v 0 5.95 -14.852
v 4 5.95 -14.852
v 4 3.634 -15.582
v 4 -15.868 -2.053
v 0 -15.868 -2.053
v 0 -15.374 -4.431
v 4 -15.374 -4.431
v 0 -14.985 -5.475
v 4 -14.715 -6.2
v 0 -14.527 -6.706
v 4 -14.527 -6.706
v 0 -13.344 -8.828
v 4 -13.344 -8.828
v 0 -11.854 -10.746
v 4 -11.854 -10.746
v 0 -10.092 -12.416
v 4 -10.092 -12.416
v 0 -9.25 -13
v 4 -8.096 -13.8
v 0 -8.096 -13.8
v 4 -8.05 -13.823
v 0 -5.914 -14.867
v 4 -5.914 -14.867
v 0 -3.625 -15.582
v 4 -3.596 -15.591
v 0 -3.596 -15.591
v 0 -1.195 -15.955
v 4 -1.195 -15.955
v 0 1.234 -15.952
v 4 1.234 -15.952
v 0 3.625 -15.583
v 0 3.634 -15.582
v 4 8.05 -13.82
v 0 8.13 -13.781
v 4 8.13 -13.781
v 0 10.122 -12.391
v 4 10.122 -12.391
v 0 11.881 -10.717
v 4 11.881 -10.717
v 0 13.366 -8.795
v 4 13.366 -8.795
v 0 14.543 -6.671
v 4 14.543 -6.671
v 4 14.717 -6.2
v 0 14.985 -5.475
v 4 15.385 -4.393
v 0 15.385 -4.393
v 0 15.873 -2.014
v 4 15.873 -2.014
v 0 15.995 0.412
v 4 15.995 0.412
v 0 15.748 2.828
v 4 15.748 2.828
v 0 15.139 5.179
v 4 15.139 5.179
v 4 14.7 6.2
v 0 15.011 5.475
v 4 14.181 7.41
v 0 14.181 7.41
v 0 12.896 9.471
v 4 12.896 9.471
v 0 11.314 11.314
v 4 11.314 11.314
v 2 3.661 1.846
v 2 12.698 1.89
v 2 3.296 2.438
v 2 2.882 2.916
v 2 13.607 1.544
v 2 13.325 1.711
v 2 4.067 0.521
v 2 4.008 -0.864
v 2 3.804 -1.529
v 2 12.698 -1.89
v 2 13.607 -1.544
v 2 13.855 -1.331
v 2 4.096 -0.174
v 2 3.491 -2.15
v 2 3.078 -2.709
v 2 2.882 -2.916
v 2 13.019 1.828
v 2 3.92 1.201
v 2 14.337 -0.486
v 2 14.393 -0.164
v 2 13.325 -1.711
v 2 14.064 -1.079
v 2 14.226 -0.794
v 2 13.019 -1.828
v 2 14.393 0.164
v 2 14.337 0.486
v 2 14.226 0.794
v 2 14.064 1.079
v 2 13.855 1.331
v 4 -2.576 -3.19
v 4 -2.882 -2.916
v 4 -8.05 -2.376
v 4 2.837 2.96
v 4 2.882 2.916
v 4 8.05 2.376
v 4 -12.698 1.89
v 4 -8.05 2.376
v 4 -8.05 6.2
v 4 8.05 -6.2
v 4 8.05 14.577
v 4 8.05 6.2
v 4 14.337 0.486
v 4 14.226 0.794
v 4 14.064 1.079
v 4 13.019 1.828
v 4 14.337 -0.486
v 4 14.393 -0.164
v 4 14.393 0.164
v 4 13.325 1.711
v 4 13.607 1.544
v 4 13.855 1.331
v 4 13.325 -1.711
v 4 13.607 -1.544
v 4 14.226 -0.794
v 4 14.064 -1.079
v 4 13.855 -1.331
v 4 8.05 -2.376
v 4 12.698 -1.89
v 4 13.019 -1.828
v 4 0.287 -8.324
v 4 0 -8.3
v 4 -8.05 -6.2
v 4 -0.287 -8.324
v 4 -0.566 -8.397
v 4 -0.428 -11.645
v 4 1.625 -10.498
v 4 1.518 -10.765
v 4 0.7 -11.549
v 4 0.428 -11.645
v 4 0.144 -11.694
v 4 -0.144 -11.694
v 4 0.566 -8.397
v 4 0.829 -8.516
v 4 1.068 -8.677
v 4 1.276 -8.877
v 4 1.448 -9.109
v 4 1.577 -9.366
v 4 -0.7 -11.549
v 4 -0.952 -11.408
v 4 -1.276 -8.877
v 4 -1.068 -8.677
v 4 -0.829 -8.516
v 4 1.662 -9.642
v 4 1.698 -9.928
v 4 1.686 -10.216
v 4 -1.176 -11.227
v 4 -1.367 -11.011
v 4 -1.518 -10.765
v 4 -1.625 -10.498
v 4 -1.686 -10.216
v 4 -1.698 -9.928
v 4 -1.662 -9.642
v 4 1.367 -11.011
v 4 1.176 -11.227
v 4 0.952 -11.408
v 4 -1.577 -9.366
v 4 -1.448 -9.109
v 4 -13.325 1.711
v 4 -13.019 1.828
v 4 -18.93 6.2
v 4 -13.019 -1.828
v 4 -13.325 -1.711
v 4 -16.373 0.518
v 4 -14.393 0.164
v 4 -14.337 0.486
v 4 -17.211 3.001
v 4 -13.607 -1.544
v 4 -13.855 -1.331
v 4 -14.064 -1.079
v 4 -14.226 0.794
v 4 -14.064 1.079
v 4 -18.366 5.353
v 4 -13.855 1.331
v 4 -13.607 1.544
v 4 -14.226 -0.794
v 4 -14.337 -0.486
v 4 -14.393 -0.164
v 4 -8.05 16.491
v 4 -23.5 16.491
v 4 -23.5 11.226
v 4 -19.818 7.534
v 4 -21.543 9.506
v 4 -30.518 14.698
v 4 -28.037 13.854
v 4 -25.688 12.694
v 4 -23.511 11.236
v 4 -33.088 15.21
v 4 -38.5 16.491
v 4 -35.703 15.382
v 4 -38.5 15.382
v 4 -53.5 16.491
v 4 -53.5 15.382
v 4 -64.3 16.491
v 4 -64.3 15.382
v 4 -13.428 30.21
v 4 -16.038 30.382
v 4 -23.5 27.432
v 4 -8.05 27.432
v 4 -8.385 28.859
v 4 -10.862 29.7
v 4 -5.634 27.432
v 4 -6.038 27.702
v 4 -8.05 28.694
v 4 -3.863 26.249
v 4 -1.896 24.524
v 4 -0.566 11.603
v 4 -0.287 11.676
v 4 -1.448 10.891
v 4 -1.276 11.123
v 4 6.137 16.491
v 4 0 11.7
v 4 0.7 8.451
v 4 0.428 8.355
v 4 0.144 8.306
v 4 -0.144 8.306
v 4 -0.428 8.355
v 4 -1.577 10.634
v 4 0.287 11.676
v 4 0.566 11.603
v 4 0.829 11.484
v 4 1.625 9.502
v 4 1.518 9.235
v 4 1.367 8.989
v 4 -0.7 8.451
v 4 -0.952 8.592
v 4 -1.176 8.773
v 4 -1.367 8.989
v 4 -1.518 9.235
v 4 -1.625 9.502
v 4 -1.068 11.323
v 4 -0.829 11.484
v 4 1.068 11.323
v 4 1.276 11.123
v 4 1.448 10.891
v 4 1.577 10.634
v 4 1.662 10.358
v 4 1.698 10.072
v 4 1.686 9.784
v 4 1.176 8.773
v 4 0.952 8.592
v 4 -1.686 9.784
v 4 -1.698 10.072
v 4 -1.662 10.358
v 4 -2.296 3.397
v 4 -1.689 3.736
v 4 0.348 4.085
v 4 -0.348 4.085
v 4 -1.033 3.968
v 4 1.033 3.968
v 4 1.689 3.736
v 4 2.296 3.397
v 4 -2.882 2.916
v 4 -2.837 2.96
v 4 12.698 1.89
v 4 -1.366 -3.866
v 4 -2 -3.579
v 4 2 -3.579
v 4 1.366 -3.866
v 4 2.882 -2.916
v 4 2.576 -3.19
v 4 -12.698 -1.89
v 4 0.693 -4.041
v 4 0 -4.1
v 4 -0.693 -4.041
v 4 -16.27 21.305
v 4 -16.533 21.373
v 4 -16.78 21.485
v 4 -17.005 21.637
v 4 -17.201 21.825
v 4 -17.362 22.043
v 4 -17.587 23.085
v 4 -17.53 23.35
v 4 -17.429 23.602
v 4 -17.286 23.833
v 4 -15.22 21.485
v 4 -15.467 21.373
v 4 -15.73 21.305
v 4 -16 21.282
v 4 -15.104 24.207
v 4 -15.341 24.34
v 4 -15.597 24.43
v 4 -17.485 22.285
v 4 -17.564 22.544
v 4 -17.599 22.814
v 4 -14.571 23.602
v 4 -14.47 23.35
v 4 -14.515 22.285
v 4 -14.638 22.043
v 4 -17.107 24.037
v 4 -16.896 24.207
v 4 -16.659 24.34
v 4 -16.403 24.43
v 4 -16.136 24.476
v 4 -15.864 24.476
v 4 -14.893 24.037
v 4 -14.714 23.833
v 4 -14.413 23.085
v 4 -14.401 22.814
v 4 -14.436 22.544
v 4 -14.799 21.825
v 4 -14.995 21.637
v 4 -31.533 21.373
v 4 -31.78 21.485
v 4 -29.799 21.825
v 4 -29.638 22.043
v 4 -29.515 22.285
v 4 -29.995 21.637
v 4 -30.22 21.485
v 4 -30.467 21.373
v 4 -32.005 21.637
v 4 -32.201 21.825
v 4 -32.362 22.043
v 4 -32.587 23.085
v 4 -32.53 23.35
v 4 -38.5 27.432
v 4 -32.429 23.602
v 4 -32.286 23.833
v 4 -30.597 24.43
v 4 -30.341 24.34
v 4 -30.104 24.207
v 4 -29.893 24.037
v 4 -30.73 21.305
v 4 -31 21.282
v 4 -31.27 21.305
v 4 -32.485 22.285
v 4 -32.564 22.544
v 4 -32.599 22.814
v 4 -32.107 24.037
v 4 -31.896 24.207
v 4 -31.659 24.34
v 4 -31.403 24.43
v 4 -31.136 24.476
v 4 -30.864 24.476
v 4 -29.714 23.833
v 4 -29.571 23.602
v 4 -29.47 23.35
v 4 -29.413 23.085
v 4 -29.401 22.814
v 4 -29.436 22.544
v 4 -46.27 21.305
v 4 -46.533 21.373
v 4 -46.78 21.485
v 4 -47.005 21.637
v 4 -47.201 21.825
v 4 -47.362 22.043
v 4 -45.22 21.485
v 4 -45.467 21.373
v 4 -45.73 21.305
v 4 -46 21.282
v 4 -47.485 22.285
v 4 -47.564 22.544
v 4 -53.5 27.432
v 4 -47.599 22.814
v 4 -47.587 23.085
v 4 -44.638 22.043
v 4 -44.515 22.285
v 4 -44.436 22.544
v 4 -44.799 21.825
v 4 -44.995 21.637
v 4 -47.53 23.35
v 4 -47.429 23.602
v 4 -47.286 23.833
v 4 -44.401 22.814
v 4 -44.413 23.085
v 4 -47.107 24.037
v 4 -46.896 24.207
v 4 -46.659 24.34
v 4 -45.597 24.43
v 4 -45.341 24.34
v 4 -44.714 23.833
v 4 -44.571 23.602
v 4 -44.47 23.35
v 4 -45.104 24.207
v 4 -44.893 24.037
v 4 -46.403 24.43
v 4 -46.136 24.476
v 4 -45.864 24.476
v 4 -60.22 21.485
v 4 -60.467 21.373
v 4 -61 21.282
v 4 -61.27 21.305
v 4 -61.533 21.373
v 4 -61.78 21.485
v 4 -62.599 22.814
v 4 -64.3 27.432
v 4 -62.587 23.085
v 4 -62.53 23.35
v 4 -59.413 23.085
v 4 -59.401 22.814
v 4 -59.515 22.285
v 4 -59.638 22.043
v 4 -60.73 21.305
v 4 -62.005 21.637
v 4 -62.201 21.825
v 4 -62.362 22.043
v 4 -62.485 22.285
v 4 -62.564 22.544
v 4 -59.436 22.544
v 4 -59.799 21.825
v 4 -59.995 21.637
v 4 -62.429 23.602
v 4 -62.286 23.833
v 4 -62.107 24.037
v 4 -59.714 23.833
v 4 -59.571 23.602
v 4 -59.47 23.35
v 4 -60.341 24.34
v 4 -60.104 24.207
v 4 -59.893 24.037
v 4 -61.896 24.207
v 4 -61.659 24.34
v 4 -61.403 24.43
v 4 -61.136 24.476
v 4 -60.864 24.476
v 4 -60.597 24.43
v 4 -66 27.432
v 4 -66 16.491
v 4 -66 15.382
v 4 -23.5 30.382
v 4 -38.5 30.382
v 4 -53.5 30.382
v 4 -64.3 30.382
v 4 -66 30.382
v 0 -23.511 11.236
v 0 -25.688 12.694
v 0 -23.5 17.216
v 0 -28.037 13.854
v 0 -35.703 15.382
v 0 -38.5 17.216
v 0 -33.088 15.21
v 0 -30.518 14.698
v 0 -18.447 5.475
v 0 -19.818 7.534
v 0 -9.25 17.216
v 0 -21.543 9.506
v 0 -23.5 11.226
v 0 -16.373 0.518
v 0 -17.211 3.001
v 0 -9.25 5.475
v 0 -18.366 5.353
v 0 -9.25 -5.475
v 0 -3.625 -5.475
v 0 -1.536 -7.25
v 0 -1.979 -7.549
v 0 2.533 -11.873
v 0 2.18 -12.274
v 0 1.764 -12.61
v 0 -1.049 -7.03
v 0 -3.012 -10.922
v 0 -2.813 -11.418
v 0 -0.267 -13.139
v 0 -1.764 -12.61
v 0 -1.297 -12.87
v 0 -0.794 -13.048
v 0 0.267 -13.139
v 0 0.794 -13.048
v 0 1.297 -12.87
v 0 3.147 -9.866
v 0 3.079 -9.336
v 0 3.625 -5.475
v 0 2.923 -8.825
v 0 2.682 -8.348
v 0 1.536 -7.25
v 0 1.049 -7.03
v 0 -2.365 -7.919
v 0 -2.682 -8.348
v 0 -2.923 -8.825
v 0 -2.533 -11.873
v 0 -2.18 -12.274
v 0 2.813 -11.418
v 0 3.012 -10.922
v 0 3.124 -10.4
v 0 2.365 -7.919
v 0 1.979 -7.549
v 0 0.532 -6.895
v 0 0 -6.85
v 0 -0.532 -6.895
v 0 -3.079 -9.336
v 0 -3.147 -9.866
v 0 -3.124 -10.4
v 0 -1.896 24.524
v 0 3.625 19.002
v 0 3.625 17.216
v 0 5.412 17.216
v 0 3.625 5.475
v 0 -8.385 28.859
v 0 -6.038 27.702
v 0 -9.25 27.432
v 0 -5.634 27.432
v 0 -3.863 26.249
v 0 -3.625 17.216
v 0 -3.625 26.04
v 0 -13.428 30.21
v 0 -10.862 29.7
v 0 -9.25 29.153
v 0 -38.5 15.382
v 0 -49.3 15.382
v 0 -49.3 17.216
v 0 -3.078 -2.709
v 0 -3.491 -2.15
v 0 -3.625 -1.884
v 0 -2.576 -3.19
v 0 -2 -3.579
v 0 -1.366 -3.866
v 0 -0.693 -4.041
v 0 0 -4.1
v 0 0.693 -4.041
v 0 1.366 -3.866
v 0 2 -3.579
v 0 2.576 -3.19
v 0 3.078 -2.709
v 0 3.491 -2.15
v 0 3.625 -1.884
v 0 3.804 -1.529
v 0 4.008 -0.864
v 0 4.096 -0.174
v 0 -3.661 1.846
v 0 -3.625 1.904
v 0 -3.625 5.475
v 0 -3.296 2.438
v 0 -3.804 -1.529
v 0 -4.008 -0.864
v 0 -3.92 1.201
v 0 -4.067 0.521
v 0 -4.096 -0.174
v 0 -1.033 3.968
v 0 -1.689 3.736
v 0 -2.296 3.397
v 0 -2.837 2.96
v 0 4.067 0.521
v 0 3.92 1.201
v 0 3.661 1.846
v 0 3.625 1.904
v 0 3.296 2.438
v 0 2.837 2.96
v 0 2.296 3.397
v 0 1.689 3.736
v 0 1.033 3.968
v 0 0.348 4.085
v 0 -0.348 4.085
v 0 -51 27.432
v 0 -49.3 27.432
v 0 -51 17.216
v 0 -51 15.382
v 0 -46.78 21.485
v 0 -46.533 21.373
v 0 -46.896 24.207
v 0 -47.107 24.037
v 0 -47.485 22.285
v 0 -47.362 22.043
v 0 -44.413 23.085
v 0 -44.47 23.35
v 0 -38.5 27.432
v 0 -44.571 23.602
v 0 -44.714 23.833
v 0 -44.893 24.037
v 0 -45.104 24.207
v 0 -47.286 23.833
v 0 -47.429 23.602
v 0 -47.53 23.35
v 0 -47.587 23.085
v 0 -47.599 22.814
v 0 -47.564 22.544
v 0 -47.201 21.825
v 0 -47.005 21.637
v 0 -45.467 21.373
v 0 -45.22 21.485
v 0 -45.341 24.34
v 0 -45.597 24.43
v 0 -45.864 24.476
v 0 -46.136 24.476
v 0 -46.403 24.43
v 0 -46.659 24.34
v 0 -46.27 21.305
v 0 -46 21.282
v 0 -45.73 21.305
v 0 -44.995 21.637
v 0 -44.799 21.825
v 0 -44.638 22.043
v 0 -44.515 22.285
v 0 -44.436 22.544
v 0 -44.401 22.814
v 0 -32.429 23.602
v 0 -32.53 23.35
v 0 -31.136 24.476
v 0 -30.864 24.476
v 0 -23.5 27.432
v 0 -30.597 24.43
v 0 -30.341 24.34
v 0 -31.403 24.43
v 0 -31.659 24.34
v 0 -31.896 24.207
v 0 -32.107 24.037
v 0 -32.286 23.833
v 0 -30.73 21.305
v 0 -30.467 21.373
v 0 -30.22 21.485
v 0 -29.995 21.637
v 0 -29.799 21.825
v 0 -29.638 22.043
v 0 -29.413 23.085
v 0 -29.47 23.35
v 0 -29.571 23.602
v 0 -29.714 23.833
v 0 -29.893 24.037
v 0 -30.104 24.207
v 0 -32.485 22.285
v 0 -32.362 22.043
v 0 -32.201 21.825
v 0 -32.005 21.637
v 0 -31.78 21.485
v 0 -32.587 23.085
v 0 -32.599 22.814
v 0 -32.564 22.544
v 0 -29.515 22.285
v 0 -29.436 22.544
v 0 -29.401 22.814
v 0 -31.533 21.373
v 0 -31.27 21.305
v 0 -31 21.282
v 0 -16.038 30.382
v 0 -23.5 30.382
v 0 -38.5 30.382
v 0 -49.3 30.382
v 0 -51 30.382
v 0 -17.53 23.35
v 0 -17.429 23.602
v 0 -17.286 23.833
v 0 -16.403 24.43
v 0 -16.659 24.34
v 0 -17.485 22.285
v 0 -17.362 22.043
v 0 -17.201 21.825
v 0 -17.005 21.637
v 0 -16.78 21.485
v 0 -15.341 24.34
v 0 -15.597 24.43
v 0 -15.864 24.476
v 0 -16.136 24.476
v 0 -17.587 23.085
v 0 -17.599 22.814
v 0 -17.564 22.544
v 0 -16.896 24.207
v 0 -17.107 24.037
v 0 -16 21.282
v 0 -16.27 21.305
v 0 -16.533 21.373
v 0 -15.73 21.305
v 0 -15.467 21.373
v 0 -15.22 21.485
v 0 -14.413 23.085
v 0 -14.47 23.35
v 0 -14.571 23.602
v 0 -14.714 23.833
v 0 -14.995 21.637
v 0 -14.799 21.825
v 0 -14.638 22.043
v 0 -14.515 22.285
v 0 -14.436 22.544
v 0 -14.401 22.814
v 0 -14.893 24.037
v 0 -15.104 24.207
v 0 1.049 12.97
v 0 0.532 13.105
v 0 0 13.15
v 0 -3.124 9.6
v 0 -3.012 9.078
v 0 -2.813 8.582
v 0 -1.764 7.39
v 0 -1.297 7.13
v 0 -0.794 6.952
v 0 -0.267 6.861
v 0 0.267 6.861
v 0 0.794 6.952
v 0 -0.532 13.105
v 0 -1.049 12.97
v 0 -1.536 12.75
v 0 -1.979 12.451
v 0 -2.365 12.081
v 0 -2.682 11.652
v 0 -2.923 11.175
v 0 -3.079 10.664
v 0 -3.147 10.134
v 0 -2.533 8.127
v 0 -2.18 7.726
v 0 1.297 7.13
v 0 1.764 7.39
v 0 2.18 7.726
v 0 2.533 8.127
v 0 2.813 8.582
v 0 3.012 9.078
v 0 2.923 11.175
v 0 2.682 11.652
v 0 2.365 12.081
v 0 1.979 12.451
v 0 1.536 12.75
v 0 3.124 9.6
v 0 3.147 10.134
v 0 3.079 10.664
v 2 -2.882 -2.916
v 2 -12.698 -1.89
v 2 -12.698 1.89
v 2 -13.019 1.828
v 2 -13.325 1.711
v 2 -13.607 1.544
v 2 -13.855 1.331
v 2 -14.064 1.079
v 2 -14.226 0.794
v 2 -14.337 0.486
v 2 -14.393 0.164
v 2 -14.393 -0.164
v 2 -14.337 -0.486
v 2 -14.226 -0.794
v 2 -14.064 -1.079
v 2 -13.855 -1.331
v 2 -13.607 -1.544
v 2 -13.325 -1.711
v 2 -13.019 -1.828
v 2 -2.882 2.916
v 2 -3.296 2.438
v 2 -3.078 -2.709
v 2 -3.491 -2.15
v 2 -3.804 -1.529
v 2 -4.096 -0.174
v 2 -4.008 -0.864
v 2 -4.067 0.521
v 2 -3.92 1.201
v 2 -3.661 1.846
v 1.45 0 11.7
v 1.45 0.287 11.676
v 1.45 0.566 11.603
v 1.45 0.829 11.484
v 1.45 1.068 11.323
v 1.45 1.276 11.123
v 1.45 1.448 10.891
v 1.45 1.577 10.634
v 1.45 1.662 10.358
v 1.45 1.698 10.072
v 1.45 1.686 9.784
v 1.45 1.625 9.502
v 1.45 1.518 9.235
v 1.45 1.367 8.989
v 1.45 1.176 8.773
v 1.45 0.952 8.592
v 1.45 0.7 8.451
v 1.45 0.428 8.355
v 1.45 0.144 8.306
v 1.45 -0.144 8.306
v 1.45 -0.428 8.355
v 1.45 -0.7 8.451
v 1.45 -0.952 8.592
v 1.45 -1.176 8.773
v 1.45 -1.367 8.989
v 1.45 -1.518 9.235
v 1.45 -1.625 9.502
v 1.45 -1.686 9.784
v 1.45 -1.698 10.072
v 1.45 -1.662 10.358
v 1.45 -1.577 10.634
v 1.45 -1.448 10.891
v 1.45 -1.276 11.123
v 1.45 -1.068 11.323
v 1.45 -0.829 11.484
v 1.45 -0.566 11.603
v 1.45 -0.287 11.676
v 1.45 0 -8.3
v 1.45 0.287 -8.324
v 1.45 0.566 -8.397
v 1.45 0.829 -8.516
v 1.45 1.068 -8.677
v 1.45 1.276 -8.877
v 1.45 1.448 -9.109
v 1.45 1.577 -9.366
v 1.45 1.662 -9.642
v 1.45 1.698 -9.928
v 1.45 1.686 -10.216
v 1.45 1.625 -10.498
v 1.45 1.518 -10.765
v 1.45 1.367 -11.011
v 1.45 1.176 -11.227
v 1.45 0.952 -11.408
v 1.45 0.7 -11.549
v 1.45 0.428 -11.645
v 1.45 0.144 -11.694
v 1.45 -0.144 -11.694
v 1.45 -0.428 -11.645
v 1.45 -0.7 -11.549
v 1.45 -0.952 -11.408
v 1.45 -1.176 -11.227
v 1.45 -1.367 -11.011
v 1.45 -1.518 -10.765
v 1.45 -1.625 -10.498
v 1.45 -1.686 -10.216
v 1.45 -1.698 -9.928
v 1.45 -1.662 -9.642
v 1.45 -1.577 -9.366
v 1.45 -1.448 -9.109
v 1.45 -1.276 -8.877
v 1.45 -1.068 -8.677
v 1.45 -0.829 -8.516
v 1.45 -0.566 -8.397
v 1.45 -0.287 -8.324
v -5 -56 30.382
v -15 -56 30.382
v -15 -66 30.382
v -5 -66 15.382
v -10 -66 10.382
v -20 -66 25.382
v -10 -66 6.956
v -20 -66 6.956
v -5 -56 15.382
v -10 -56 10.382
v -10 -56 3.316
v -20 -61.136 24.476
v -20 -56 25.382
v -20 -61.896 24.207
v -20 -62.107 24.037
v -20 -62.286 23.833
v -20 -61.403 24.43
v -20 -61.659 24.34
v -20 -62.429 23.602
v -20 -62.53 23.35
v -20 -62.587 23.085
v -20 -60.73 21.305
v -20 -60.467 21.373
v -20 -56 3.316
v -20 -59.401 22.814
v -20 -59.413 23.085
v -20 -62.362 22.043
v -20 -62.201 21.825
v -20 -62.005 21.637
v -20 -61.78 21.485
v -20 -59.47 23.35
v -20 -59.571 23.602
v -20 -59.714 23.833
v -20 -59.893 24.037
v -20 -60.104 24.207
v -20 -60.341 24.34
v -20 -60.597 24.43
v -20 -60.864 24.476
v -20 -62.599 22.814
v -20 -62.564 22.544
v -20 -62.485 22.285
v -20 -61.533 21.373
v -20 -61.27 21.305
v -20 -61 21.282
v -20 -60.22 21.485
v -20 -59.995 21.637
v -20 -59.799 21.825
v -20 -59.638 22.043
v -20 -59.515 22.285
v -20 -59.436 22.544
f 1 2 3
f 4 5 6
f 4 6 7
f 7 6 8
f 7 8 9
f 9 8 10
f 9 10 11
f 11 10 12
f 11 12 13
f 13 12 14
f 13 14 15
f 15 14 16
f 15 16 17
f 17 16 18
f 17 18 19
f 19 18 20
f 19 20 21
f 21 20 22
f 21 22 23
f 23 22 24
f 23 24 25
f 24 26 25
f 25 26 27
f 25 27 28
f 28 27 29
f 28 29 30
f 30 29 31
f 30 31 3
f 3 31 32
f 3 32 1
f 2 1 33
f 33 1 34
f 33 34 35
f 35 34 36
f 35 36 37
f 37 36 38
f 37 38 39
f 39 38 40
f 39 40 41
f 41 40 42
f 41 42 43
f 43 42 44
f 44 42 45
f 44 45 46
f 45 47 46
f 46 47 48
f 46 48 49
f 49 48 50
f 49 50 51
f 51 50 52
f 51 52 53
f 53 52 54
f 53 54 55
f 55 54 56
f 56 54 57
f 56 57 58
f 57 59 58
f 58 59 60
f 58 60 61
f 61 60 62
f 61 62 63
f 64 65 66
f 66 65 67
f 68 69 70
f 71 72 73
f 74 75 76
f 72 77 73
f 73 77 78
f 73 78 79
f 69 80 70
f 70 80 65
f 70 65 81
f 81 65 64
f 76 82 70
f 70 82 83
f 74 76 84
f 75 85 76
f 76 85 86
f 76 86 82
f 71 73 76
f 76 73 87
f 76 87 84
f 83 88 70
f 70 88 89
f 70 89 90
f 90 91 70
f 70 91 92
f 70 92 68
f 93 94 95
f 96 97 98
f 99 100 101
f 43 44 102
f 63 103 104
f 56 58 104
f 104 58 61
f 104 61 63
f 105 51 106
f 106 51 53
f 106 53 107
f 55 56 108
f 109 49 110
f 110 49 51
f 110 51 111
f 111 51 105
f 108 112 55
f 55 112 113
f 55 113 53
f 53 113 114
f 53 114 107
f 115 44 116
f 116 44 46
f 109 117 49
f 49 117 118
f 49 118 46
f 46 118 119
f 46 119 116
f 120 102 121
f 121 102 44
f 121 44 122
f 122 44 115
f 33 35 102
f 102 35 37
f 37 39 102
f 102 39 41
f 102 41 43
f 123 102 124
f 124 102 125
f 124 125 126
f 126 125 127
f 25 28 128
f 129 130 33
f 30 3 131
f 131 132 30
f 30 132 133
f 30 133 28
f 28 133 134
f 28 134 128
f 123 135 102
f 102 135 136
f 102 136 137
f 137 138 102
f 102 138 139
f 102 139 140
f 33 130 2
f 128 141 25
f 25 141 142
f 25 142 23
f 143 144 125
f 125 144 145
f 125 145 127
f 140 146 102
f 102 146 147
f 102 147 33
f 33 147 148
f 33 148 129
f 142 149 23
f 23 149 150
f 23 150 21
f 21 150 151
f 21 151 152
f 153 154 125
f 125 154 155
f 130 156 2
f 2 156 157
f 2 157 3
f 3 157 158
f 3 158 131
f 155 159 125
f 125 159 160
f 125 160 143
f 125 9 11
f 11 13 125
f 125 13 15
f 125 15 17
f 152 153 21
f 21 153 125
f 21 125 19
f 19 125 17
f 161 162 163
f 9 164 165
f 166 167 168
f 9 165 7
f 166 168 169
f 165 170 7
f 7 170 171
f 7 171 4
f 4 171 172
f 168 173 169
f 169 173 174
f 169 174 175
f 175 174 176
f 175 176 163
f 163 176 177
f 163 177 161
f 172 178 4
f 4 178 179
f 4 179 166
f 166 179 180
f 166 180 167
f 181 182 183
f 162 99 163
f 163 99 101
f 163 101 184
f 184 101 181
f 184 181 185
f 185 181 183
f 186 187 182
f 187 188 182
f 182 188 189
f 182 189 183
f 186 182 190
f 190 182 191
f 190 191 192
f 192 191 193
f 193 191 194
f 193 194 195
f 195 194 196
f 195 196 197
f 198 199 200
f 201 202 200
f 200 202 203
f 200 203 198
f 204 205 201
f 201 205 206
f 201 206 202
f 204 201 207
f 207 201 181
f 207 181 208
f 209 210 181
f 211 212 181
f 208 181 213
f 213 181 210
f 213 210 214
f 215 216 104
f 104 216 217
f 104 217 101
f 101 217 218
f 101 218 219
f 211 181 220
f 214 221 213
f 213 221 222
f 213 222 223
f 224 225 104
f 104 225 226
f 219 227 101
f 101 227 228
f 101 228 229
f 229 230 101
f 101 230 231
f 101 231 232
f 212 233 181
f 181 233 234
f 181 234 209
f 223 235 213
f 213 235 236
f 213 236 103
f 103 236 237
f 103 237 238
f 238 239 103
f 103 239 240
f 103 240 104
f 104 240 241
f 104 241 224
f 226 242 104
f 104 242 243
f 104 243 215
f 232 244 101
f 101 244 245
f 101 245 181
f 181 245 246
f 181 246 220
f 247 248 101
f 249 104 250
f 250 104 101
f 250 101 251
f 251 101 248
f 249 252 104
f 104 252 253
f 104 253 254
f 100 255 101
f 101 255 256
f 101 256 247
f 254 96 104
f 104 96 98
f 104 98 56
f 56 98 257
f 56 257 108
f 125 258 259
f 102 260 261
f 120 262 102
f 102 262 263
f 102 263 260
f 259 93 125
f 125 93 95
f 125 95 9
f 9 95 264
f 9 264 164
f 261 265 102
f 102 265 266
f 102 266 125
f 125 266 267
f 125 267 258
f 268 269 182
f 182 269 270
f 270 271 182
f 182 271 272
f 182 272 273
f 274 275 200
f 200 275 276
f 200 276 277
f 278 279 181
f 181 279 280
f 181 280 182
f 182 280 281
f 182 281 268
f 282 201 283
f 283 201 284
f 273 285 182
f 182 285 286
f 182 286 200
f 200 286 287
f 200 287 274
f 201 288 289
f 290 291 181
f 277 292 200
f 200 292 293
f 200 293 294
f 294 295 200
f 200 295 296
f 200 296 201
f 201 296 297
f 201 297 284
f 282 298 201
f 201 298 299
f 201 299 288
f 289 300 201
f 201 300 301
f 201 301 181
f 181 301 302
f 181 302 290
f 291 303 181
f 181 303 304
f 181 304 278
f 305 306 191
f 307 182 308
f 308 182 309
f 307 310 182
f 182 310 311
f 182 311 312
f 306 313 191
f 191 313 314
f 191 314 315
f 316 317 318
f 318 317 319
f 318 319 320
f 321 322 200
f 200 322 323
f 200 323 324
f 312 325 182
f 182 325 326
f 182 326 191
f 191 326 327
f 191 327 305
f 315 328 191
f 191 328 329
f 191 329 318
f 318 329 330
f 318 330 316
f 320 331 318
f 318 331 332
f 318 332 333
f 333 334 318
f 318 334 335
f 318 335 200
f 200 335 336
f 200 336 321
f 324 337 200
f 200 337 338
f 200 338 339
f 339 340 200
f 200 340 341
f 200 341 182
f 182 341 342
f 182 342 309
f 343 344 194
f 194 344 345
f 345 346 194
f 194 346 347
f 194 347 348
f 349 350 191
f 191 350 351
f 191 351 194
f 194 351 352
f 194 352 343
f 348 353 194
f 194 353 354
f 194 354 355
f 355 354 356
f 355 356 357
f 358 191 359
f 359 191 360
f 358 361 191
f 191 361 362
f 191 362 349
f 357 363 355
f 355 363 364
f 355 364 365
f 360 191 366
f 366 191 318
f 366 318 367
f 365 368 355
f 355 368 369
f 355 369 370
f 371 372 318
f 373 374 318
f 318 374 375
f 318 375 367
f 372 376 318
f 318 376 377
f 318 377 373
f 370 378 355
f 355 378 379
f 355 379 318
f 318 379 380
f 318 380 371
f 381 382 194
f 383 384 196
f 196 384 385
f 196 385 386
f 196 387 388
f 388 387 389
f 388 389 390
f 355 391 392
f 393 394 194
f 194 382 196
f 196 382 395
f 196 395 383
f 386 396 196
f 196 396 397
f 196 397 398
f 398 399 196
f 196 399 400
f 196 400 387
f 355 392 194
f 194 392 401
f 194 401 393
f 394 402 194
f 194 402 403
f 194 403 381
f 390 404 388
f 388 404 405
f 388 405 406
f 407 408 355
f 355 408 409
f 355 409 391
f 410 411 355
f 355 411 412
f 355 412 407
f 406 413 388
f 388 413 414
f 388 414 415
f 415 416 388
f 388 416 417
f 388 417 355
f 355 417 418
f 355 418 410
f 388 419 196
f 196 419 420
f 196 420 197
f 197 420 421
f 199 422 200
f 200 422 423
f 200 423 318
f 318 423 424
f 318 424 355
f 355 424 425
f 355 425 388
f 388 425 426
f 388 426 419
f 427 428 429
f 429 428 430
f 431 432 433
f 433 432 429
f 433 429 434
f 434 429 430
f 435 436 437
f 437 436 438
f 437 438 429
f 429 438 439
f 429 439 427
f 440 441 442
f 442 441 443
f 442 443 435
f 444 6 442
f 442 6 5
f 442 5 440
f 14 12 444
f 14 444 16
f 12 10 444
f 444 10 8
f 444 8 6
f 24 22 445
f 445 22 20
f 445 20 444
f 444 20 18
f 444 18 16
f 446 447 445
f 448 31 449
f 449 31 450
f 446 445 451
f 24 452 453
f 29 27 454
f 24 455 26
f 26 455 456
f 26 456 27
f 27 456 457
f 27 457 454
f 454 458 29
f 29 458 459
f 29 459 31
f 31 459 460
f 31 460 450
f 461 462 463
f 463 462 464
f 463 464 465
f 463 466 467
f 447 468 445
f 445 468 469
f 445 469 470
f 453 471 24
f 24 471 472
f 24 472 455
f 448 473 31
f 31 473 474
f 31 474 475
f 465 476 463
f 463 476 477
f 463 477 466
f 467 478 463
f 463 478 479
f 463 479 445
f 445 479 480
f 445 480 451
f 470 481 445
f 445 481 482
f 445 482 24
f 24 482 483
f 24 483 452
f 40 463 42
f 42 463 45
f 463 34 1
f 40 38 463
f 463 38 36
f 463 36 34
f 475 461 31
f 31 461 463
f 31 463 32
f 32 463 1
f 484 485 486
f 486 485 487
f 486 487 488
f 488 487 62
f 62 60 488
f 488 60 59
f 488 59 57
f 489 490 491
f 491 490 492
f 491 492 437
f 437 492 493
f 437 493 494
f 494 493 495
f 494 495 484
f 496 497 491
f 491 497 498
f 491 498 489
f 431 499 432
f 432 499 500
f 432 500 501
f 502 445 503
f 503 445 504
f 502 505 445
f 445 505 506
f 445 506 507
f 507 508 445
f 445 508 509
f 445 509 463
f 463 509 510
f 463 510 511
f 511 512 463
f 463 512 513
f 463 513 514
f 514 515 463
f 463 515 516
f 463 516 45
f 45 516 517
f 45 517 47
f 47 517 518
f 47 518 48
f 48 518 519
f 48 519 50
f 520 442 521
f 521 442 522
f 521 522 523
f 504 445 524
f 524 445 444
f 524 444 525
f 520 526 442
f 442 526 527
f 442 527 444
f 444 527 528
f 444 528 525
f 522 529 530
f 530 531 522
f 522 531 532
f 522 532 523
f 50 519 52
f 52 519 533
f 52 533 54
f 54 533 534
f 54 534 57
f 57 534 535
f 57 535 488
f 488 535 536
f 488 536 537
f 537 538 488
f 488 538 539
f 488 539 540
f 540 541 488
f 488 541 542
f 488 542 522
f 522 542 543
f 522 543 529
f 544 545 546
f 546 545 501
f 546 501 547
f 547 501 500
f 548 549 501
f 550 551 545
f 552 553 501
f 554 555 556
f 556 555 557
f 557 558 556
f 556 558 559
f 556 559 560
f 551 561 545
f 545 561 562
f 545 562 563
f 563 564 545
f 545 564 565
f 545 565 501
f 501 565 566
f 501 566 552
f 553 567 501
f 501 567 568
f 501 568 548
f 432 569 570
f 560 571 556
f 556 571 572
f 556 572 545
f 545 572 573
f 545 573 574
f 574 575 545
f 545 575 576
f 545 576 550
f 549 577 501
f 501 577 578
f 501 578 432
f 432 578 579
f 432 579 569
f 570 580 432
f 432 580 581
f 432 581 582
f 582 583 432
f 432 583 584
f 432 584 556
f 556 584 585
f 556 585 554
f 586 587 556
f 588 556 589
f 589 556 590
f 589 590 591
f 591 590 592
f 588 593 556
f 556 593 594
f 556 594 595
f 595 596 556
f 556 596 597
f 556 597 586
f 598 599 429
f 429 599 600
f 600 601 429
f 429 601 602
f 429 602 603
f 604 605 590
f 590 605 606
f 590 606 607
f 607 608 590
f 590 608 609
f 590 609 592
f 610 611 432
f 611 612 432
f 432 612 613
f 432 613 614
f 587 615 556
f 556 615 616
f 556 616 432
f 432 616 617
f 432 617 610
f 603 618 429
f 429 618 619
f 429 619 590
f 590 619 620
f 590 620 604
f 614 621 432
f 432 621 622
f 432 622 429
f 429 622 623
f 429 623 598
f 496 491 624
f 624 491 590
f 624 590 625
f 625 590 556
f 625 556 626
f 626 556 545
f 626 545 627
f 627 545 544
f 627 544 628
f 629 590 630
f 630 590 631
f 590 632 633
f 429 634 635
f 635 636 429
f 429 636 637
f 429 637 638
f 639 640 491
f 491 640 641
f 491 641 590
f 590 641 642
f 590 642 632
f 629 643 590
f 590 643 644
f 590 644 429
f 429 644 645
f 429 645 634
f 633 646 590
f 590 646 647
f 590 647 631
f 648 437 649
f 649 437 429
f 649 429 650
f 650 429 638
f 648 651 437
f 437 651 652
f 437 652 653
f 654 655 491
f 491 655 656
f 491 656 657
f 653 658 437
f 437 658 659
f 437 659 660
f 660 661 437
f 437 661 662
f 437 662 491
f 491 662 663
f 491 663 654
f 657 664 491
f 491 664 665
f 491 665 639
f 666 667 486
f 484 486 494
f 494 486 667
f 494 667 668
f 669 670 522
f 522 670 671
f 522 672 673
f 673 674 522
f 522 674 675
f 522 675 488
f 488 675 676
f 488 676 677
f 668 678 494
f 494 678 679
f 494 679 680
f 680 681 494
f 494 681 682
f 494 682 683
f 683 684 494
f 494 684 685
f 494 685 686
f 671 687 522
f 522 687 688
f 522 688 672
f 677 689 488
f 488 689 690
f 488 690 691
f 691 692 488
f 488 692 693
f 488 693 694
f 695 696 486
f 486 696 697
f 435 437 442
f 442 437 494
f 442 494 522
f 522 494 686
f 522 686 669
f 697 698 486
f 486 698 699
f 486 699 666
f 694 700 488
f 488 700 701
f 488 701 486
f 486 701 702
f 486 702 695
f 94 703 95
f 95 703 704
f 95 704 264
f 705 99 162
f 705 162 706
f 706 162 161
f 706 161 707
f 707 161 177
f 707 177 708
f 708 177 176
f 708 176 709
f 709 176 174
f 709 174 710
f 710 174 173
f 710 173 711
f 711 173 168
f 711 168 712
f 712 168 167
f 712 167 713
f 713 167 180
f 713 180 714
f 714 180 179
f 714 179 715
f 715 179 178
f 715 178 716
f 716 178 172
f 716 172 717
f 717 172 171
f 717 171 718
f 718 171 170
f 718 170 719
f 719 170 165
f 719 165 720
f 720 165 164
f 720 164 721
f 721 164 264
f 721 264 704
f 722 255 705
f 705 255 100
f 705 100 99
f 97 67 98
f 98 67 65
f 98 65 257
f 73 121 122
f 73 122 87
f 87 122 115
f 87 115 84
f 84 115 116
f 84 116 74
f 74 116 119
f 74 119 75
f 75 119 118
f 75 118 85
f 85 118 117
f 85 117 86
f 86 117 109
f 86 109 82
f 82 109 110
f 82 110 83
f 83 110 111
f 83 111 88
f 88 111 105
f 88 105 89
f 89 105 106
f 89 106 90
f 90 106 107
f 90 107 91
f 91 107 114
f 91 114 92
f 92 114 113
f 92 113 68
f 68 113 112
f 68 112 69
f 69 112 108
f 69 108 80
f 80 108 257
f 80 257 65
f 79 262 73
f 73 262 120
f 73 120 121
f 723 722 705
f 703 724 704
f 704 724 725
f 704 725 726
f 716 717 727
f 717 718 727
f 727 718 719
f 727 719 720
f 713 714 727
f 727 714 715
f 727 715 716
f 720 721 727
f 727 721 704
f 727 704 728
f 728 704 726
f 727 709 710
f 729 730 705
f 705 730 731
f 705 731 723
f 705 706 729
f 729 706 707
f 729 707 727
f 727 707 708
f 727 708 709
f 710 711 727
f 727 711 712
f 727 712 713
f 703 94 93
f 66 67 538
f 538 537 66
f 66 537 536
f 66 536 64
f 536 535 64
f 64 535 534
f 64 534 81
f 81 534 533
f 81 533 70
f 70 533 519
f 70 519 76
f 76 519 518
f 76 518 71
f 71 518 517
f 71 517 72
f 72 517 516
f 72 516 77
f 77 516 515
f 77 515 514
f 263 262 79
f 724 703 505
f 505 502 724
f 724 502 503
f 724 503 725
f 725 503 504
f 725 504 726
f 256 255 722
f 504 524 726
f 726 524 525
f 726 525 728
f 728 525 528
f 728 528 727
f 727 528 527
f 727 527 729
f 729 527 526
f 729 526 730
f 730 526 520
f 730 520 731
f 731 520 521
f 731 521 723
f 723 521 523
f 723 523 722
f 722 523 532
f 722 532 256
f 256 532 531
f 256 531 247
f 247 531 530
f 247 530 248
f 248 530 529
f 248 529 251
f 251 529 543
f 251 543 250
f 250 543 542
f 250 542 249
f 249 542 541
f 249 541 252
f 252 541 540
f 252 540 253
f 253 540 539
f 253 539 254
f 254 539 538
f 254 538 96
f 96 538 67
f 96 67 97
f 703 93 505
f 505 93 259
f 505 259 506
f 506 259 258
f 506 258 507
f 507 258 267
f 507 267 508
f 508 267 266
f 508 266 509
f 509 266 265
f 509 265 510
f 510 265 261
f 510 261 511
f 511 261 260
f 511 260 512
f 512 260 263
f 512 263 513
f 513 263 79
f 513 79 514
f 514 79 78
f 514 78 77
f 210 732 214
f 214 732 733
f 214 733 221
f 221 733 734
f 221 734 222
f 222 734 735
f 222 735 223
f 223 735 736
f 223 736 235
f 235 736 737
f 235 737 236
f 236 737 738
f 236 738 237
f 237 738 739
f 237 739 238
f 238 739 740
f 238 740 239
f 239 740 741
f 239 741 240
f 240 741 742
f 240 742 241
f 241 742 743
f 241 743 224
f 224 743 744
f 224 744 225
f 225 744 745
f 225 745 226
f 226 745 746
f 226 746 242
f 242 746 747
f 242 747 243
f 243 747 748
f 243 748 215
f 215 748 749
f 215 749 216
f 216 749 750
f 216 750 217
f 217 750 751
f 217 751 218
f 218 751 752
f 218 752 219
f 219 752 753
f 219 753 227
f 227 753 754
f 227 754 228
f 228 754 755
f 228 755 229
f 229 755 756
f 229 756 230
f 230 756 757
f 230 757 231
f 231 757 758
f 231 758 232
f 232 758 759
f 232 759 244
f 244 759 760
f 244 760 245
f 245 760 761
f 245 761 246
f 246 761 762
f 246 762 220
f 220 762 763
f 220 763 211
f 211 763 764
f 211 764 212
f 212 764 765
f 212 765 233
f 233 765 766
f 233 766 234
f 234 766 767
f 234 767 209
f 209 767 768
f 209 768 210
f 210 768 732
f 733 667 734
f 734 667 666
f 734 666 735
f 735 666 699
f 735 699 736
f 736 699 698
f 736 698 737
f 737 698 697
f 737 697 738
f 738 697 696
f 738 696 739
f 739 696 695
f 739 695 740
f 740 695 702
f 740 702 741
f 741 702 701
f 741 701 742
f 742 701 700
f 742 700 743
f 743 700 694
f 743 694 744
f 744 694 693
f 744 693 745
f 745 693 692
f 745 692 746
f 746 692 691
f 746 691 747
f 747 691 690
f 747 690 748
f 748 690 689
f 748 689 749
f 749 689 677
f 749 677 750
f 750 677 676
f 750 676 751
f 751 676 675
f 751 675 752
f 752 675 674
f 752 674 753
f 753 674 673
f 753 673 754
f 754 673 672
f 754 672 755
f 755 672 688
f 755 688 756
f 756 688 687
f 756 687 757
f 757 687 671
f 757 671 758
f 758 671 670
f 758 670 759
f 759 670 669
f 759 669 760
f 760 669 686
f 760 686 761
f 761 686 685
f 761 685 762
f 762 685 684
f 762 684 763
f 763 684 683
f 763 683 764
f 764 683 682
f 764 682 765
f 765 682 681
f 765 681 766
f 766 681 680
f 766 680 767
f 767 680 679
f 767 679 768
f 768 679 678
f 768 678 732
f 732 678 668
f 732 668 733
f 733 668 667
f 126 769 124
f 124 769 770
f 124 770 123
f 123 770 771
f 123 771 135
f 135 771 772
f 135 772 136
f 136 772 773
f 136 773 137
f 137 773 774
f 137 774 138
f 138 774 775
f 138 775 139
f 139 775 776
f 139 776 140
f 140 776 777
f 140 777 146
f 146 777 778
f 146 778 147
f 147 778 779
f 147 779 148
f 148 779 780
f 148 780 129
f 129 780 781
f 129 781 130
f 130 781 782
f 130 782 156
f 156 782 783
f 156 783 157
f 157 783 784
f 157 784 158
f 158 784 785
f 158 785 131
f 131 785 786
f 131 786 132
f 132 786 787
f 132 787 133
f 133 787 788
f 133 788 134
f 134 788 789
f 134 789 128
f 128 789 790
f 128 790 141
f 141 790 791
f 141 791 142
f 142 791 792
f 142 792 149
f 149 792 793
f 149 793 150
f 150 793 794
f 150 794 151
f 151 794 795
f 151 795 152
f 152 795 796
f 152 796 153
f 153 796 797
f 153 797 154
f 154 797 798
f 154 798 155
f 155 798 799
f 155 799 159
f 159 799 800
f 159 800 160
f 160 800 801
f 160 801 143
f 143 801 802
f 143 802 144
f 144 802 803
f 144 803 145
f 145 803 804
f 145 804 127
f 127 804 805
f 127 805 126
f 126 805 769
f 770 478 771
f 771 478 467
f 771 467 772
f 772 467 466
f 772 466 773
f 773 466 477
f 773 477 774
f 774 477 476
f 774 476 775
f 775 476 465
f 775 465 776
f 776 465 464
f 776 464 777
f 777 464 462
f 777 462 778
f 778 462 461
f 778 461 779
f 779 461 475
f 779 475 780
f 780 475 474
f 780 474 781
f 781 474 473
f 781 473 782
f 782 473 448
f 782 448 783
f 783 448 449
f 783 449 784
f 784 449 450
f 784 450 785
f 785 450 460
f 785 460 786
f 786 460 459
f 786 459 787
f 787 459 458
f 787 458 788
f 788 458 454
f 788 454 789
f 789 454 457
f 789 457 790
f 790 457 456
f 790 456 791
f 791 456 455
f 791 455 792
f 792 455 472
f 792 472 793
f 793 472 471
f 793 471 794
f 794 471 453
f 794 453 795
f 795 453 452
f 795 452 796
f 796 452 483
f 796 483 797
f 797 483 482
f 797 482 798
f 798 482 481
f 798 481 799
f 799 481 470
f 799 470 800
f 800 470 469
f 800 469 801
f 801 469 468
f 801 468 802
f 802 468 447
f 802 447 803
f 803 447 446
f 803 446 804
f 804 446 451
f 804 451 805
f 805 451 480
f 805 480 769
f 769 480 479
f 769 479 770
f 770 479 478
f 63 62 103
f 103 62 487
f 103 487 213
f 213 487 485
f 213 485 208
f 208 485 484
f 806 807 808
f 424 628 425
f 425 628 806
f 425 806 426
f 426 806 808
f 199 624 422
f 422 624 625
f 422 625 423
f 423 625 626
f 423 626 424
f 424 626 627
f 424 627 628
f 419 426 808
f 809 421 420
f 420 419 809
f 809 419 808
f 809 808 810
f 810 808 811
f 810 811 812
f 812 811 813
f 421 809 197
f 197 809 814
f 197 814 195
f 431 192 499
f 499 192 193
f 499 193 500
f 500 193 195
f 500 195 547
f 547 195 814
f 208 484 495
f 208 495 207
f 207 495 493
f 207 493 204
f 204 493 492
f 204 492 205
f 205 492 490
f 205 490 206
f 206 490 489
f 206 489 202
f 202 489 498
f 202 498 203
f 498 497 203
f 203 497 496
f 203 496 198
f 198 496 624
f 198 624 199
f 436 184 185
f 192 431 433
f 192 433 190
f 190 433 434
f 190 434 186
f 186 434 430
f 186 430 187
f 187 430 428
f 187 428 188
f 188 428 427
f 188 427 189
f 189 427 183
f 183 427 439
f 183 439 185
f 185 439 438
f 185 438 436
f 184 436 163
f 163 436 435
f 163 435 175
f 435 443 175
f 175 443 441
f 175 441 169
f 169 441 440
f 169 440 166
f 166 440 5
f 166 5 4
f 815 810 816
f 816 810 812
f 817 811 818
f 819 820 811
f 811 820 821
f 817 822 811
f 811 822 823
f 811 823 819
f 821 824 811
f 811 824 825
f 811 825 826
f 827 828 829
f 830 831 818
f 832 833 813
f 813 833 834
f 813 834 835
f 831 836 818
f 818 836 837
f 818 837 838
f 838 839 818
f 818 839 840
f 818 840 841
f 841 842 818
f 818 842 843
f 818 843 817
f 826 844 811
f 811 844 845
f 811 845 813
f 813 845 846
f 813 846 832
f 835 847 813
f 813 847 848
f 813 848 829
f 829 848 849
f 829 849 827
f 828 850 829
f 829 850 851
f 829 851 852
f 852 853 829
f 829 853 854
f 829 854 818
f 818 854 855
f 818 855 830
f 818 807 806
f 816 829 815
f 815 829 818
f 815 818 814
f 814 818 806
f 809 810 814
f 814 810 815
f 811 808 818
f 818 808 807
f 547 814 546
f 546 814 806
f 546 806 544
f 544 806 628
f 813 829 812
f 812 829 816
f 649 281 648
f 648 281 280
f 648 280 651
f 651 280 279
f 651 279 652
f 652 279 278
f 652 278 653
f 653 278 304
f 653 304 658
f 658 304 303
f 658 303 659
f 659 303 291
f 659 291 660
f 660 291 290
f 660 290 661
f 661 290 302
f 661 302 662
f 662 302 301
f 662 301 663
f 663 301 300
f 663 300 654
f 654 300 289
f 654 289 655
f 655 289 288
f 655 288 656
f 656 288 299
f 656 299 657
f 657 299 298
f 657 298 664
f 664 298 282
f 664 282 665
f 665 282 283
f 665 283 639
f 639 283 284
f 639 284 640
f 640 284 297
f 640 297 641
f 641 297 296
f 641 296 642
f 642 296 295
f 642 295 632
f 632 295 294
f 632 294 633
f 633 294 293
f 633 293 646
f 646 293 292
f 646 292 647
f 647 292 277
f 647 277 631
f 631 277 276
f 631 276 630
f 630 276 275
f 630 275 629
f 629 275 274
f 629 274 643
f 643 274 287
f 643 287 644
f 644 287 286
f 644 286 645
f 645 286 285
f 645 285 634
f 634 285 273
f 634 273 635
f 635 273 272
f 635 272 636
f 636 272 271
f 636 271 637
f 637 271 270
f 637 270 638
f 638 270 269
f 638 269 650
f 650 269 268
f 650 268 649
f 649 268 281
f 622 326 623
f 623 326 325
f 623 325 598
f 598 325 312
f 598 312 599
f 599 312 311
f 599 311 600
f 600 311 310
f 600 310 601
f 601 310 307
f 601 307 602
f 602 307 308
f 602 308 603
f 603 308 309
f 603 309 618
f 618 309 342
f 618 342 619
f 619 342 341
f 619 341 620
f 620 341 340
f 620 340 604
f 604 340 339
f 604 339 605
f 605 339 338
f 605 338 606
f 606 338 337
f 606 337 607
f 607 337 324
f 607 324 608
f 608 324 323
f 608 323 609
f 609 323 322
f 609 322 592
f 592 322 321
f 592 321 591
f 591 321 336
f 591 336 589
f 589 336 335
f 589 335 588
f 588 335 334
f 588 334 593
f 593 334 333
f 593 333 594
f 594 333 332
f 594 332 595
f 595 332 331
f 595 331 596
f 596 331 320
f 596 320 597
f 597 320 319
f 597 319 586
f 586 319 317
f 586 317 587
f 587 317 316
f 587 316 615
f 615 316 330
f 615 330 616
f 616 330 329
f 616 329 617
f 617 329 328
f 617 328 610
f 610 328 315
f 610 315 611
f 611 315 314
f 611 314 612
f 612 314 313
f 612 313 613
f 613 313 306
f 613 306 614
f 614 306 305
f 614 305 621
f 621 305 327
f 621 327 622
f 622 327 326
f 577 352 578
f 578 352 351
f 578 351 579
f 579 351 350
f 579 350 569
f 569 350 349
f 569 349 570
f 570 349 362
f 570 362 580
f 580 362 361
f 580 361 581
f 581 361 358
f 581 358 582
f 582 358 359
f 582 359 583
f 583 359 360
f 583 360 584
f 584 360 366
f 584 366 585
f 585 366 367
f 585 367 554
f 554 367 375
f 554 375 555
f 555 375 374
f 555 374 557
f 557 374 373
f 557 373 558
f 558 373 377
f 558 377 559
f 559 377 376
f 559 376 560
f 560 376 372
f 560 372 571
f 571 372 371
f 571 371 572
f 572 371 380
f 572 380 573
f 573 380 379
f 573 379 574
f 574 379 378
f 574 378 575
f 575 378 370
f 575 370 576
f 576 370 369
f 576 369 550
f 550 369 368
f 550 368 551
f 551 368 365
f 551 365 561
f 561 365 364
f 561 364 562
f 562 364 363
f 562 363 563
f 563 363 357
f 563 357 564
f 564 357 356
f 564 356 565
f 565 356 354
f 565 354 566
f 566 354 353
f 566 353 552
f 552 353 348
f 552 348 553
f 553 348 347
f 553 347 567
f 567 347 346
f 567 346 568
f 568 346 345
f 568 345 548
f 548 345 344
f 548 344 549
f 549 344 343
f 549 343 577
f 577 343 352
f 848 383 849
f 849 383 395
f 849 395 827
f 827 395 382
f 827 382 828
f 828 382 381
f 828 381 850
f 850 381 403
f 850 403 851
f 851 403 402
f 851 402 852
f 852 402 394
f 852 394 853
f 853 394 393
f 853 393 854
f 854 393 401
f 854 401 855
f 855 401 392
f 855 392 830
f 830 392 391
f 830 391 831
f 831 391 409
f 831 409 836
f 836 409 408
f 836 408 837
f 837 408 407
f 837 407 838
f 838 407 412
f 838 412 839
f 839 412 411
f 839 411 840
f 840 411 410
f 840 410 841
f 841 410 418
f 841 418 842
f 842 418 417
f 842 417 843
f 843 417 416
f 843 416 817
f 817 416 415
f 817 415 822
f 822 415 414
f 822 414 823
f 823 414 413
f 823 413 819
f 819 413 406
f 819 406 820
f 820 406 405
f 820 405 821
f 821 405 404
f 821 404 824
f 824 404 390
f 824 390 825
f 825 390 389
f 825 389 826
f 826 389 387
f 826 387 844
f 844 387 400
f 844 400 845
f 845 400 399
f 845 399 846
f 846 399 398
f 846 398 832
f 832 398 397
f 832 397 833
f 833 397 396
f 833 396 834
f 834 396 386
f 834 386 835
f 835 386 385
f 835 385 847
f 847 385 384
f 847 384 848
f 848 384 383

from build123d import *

# Parameters (mm, degrees)
SKETCH1_R                                           = 16
BOSS_EXTRUDE1_DEPTH                                 = 4
CUT_EXTRUDE2_DEPTH                                  = 2
SKETCH3_R                                           = 4.1
CUT_EXTRUDE1_DEPTH                                  = 23.978250586
CSK_FOR_M3_COUNTERSUNK_FLAT_HEAD_SCREW1_D           = 3.4
CSK_FOR_M3_COUNTERSUNK_FLAT_HEAD_SCREW1_CSINK_D     = 6.3
CSK_FOR_M3_COUNTERSUNK_FLAT_HEAD_SCREW1_CSINK_ANGLE = 90
BOSS_EXTRUDE3_DEPTH                                 = 4
FILLET3_R                                           = 20
BOSS_EXTRUDE4_DEPTH                                 = 10
CHAMFER1_SIZE                                       = 5
CUT_EXTRUDE5_DEPTH                                  = 74.993512369
SKETCH10_R                                          = 1.6
CUT_EXTRUDE4_DEPTH                                  = 77.518232271


with BuildPart() as part:
    # Sketch1 → Boss-Extrude1 (new body)
    with BuildSketch(Plane(origin=(0, 0, 0), x_dir=(0, 0, -1), z_dir=(1, 0, 0))):
        Circle(SKETCH1_R)
    extrude(amount=BOSS_EXTRUDE1_DEPTH)

    # Sketch5 → Cut-Extrude2 (cut)
    with BuildSketch(Plane(origin=(4, 0, 0), x_dir=(0, 0, -1), z_dir=(1, 0, 0))):
        with BuildLine():
            Line((-1.889696865, 12.6976), (-2.933047351, 2.719785513))
            ThreePointArc((-2.933047351, 2.719785513), (-4, 0), (-2.933047351, -2.719785513))
            Line((-2.933047351, -2.719785513), (-1.889696865, -12.6976))
            ThreePointArc((-1.889696865, -12.6976), (0, -14.4), (1.889696865, -12.6976))
            Line((1.889696865, -12.6976), (2.933047351, -2.719785513))
            ThreePointArc((2.933047351, -2.719785513), (4, 0), (2.933047351, 2.719785513))
            Line((2.933047351, 2.719785513), (1.889696865, 12.6976))
            ThreePointArc((1.889696865, 12.6976), (0, 14.4), (-1.889696865, 12.6976))
        make_face()
    extrude(amount=-CUT_EXTRUDE2_DEPTH, mode=Mode.SUBTRACT)

    # Sketch3 → Cut-Extrude1 (cut, through all)
    with BuildSketch(Plane(origin=(4, 0, 0), x_dir=(0, 0, -1), z_dir=(1, 0, 0))):
        Circle(SKETCH3_R)
    extrude(amount=-CUT_EXTRUDE1_DEPTH, mode=Mode.SUBTRACT)

    # CSK for M3 Countersunk Flat Head Screw1 (through all)
    with Locations(Plane.ZY):
        with Locations((-10, 0), (10, 0)):
            CounterSinkHole(CSK_FOR_M3_COUNTERSUNK_FLAT_HEAD_SCREW1_D / 2, CSK_FOR_M3_COUNTERSUNK_FLAT_HEAD_SCREW1_CSINK_D / 2, counter_sink_angle=CSK_FOR_M3_COUNTERSUNK_FLAT_HEAD_SCREW1_CSINK_ANGLE)

    # Sketch9 → Boss-Extrude3 (add)
    with BuildSketch(Plane(origin=(0, 0, 0), x_dir=(0, 0, -1), z_dir=(1, 0, 0))):
        with BuildLine():
            Line((-30.381570905, -7.754153907), (-30.381570905, -66))
            Line((-30.381570905, -66), (-15.381570905, -66))
            Line((-15.381570905, -66), (-15.381570905, -16))
            Line((-15.381570905, -16), (0, -16))
            ThreePointArc((0, -16), (-14.78207252, -6.122934918), (-11.313708499, 11.313708499))
            Line((-11.313708499, 11.313708499), (-30.381570905, -7.754153907))
        make_face()
    extrude(amount=BOSS_EXTRUDE3_DEPTH)

    # Fillet3
    fillet3_edges = [part.edges().sort_by_distance(p)[0] for p in [
        (2, -7.754153907, 30.381570905),
        (2, -16, 15.381570905),
    ]]
    fillet(fillet3_edges, radius=FILLET3_R)

    # Sketch11 → Boss-Extrude4 (add)
    with BuildSketch(Plane.XZ.offset(66)):
        Polygon((0, 15.381570905), (-10, 15.381570905), (-10, 0), (-20, 0), (-20, 30.381570905), (0, 30.381570905), align=None)
    extrude(amount=-BOSS_EXTRUDE4_DEPTH)

    # Chamfer1
    chamfer1_edges = [part.edges().sort_by_distance(p)[0] for p in [
        (-10, -61, 15.381570905),
        (-20, -61, 30.381570905),
        (0, -56, 22.881570905),
    ]]
    chamfer(chamfer1_edges, length=CHAMFER1_SIZE - 0.0001)  # a hair under: the kernel refuses the full size

    # Sketch12 → Cut-Extrude5 (cut, through all)
    with BuildSketch(Plane(origin=(-10, 0, 0), x_dir=(0, 0, -1), z_dir=(1, 0, 0))):
        Polygon((-6.955897301, -66), (-3.316194958, -56), (0, -56), (0, -66), align=None)
    extrude(amount=-CUT_EXTRUDE5_DEPTH, mode=Mode.SUBTRACT)

    # Sketch10 → Cut-Extrude4 (cut, through all)
    with BuildSketch(Plane(origin=(4, 0, 0), x_dir=(0, 0, -1), z_dir=(1, 0, 0))):
        with Locations((-22.881570905, -16)):
            Circle(SKETCH10_R)
        with Locations((-22.881570905, -31)):
            Circle(SKETCH10_R)
        with Locations((-22.881570905, -46)):
            Circle(SKETCH10_R)
        with Locations((-22.881570905, -61)):
            Circle(SKETCH10_R)
    extrude(amount=-CUT_EXTRUDE4_DEPTH, mode=Mode.SUBTRACT)


solid = part.part
